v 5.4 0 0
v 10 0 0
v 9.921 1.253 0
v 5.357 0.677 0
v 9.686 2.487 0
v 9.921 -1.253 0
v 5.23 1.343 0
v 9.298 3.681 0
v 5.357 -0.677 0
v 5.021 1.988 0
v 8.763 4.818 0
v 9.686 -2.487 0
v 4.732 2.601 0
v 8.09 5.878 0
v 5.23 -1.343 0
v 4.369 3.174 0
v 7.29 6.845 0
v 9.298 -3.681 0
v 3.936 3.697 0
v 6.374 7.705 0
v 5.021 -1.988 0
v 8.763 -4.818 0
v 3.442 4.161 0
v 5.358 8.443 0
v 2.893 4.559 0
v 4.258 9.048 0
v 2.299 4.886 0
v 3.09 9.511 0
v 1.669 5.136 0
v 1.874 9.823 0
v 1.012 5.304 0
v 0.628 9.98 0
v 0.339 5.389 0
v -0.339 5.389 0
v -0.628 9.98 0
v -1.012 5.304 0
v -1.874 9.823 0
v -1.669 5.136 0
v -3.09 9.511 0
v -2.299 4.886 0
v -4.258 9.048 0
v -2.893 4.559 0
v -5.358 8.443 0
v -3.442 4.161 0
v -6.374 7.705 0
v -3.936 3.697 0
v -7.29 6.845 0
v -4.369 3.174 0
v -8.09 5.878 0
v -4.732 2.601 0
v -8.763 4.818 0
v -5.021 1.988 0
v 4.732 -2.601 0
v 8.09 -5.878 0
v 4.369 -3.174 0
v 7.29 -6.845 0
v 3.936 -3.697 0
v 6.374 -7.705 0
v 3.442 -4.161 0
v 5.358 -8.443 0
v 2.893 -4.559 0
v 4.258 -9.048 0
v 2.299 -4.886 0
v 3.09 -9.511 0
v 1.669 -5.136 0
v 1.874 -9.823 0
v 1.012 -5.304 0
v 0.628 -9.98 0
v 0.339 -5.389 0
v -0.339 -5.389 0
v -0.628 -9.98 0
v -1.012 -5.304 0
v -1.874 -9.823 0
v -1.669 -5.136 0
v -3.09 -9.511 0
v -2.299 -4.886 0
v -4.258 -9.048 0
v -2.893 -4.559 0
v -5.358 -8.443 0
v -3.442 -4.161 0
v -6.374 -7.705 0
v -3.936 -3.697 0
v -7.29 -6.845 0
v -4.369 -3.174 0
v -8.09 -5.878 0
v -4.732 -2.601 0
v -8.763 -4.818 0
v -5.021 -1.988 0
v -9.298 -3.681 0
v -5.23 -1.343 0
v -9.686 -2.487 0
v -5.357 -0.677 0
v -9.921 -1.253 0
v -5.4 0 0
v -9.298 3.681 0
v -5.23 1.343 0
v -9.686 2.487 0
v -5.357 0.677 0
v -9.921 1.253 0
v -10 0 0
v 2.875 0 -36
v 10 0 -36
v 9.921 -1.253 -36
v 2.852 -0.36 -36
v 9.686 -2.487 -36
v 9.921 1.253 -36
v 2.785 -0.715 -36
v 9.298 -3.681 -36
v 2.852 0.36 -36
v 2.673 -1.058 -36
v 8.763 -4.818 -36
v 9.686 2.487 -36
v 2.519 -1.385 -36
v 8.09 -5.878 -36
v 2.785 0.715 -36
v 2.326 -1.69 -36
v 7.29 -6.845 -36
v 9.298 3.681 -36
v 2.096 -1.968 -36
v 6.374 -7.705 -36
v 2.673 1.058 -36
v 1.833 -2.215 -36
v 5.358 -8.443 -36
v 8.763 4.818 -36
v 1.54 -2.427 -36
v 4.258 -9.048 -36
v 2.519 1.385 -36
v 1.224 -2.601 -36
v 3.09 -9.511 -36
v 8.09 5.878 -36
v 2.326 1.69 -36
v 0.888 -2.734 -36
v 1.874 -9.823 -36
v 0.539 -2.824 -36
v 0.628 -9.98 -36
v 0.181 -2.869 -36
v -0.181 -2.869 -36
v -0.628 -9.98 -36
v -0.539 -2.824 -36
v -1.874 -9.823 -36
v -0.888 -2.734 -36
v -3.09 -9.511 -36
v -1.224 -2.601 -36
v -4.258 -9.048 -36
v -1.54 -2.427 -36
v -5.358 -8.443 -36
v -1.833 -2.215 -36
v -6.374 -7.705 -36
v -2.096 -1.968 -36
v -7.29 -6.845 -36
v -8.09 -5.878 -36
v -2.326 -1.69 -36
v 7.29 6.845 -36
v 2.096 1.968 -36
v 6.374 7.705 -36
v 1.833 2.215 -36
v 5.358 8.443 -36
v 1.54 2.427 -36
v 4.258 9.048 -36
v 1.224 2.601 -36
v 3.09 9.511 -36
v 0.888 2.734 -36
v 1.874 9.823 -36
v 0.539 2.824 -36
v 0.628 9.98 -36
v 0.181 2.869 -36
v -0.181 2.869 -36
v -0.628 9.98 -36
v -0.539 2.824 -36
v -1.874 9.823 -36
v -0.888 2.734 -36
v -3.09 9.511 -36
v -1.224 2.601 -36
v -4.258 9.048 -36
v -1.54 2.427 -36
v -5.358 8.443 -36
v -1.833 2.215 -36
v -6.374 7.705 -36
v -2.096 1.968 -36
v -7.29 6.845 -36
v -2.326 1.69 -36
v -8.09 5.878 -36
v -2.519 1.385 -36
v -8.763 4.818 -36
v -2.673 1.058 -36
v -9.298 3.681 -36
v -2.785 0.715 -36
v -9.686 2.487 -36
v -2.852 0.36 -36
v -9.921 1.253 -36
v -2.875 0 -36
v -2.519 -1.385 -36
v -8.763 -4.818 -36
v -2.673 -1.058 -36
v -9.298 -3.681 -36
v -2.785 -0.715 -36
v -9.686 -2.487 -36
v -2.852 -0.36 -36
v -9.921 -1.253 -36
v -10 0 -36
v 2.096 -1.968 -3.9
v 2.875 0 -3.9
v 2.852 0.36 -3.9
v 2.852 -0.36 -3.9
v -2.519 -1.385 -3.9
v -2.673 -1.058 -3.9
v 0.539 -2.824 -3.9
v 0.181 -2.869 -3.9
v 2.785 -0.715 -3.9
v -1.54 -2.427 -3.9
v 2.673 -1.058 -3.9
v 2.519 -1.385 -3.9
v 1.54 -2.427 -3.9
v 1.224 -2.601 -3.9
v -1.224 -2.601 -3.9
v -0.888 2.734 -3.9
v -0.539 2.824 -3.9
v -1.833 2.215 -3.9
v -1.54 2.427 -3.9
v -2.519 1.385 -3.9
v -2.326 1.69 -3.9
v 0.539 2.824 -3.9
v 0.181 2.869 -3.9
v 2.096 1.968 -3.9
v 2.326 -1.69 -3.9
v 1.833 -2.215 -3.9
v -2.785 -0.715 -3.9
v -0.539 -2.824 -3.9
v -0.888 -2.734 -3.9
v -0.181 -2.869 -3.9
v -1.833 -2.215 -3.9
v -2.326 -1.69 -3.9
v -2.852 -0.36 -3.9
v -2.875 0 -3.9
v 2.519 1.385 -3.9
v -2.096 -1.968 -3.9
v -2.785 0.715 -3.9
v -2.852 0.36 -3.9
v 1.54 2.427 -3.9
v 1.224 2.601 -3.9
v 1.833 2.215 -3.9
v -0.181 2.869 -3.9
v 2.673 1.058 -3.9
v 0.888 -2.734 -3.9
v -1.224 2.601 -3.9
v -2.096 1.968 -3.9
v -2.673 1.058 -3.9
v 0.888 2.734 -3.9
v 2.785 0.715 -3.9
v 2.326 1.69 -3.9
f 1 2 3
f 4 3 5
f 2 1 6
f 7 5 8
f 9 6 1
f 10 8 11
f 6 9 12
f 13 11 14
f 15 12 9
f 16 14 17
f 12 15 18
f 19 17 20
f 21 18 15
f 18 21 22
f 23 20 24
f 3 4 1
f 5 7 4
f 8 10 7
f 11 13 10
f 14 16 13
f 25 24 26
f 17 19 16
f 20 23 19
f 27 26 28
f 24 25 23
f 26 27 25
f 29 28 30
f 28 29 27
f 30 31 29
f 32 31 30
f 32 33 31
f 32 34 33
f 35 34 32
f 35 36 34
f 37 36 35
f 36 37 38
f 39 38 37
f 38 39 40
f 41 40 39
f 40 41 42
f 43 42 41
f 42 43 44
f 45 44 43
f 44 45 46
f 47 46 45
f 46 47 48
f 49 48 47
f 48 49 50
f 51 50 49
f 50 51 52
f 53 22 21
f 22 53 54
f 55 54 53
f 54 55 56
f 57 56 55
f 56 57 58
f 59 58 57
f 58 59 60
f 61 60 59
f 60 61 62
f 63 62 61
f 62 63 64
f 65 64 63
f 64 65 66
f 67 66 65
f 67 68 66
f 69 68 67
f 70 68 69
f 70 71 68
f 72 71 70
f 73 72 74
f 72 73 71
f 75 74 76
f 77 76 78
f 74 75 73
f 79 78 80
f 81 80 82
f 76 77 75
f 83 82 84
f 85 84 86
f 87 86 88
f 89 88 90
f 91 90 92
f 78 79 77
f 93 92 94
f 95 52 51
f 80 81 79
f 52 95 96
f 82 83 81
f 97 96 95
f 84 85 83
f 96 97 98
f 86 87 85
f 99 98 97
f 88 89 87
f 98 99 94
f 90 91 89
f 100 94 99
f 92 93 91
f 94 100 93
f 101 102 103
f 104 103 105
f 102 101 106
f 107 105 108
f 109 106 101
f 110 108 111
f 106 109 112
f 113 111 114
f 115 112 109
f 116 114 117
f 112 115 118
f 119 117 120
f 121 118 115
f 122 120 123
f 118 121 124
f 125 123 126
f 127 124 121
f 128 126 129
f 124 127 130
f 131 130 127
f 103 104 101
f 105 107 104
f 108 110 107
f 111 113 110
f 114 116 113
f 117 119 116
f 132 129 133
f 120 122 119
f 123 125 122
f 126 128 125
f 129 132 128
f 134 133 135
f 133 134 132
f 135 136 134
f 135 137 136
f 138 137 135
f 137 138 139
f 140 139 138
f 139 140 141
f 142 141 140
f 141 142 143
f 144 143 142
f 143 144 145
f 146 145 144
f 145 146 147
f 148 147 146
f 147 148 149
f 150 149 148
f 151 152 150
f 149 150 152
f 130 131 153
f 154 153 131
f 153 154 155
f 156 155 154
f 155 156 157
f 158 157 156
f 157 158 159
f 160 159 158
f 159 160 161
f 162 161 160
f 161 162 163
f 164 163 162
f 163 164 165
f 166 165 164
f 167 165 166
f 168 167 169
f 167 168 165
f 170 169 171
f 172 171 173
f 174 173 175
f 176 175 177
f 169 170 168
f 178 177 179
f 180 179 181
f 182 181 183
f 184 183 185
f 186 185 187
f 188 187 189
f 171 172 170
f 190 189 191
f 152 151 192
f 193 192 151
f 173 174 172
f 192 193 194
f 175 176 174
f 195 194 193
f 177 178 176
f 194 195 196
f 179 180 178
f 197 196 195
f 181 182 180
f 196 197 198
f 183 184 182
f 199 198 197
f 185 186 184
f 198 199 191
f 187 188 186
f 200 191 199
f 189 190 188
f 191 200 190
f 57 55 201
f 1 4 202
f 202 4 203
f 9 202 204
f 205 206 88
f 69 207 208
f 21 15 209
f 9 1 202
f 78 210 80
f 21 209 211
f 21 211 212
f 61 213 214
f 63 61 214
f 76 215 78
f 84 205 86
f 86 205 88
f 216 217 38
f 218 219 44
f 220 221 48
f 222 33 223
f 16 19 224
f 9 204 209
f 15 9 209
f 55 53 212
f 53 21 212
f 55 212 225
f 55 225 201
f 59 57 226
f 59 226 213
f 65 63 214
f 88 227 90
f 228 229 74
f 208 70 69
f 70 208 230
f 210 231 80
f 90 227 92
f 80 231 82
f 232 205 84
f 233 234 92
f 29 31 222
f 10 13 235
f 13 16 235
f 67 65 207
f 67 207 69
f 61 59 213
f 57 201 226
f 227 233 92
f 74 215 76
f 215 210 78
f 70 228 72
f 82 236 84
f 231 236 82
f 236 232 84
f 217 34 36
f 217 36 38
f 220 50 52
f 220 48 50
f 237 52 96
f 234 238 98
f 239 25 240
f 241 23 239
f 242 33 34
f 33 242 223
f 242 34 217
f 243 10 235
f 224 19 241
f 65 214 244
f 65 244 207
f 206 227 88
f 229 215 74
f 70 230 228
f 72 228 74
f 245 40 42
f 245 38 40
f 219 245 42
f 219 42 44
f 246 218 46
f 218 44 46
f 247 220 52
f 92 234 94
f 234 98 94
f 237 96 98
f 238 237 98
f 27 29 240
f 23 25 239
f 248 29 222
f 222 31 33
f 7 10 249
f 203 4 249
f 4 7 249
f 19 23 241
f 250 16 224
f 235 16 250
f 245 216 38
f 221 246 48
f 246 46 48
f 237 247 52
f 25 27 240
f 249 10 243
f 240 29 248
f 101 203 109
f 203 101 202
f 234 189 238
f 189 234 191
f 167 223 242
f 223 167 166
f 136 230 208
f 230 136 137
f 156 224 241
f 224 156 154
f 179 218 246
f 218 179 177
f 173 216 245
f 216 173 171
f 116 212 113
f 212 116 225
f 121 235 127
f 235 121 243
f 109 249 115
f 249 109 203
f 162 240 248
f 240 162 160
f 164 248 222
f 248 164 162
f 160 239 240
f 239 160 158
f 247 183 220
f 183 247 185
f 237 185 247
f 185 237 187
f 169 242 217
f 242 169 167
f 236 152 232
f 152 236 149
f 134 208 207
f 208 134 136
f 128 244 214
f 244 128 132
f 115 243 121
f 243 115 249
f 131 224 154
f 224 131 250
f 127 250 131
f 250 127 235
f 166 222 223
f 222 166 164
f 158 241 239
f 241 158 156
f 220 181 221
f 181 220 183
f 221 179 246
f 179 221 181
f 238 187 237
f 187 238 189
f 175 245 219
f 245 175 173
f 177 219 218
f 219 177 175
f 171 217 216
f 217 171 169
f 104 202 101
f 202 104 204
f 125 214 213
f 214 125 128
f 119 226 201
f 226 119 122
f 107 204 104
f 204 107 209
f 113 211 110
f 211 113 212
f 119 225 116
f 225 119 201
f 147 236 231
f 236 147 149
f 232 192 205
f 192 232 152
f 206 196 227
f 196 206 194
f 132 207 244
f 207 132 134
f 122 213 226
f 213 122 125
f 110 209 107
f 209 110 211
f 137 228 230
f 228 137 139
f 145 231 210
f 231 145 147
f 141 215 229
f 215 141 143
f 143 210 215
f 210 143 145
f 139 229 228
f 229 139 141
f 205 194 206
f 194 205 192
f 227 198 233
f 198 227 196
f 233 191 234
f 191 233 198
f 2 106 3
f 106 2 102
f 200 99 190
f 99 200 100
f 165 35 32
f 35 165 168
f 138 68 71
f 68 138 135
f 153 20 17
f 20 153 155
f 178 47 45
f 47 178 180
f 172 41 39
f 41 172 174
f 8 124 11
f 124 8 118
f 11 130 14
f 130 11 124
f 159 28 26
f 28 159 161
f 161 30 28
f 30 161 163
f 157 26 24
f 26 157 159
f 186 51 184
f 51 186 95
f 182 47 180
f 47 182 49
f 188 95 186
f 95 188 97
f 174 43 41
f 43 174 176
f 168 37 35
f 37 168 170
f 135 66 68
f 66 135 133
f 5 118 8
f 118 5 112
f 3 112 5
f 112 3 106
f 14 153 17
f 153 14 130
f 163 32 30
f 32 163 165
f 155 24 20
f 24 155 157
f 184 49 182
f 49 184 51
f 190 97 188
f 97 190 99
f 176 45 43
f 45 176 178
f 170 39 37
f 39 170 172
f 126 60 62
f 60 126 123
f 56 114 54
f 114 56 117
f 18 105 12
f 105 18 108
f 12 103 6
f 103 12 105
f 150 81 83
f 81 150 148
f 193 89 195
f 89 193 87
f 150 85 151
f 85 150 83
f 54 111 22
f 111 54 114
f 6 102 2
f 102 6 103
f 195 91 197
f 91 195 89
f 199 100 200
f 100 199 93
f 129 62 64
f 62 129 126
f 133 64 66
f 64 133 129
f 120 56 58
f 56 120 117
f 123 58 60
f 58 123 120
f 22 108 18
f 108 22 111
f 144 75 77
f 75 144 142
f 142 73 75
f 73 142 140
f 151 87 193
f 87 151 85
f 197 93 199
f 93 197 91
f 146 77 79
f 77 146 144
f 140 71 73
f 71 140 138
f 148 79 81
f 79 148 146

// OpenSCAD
$fn = 50;


difference() {
	union() {
		translate(v = [0, 0, -36.0000000000]) {
			cylinder(h = 36, r = 10.0000000000);
		}
		cylinder(h = 0, r = 16.0000000000);
	}
	union() {
		translate(v = [0, 0, 0]) {
			rotate(a = [0, 0, 0]) {
				difference() {
					union() {
						#translate(v = [0, 0, -36.0000000000]) {
							cylinder(h = 36, r = 2.6000000000);
						}
						#translate(v = [0, 0, -3.9000000000]) {
							cylinder(h = 3.9000000000, r1 = 2.8750000000, r2 = 5.4000000000);
						}
						#translate(v = [0, 0, -36.0000000000]) {
							cylinder(h = 36, r = 2.8750000000);
						}
						#translate(v = [0, 0, -36.0000000000]) {
							cylinder(h = 36, r = 2.6000000000);
						}
					}
					union();
				}
			}
		}
	}
}
